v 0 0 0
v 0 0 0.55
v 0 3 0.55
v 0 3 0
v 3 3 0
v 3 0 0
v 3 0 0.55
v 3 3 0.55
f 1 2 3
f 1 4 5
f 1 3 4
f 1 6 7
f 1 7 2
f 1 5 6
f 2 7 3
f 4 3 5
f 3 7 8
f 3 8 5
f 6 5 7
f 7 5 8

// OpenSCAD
/* Warning, this is a very basic generator with a lot of approximation 
input data : [UQFN, QDX, 3x3x0.55mm, 20, , A, C04-00264A]
generated by com.zoubworld.electronics.cad.model3d.Basic
Date : Sun Feb 15 10:50:48 CET 2026
*/

//body
color("black")
translate([0,0,0])
cube([3.0,3.0,0.55], center=false);
